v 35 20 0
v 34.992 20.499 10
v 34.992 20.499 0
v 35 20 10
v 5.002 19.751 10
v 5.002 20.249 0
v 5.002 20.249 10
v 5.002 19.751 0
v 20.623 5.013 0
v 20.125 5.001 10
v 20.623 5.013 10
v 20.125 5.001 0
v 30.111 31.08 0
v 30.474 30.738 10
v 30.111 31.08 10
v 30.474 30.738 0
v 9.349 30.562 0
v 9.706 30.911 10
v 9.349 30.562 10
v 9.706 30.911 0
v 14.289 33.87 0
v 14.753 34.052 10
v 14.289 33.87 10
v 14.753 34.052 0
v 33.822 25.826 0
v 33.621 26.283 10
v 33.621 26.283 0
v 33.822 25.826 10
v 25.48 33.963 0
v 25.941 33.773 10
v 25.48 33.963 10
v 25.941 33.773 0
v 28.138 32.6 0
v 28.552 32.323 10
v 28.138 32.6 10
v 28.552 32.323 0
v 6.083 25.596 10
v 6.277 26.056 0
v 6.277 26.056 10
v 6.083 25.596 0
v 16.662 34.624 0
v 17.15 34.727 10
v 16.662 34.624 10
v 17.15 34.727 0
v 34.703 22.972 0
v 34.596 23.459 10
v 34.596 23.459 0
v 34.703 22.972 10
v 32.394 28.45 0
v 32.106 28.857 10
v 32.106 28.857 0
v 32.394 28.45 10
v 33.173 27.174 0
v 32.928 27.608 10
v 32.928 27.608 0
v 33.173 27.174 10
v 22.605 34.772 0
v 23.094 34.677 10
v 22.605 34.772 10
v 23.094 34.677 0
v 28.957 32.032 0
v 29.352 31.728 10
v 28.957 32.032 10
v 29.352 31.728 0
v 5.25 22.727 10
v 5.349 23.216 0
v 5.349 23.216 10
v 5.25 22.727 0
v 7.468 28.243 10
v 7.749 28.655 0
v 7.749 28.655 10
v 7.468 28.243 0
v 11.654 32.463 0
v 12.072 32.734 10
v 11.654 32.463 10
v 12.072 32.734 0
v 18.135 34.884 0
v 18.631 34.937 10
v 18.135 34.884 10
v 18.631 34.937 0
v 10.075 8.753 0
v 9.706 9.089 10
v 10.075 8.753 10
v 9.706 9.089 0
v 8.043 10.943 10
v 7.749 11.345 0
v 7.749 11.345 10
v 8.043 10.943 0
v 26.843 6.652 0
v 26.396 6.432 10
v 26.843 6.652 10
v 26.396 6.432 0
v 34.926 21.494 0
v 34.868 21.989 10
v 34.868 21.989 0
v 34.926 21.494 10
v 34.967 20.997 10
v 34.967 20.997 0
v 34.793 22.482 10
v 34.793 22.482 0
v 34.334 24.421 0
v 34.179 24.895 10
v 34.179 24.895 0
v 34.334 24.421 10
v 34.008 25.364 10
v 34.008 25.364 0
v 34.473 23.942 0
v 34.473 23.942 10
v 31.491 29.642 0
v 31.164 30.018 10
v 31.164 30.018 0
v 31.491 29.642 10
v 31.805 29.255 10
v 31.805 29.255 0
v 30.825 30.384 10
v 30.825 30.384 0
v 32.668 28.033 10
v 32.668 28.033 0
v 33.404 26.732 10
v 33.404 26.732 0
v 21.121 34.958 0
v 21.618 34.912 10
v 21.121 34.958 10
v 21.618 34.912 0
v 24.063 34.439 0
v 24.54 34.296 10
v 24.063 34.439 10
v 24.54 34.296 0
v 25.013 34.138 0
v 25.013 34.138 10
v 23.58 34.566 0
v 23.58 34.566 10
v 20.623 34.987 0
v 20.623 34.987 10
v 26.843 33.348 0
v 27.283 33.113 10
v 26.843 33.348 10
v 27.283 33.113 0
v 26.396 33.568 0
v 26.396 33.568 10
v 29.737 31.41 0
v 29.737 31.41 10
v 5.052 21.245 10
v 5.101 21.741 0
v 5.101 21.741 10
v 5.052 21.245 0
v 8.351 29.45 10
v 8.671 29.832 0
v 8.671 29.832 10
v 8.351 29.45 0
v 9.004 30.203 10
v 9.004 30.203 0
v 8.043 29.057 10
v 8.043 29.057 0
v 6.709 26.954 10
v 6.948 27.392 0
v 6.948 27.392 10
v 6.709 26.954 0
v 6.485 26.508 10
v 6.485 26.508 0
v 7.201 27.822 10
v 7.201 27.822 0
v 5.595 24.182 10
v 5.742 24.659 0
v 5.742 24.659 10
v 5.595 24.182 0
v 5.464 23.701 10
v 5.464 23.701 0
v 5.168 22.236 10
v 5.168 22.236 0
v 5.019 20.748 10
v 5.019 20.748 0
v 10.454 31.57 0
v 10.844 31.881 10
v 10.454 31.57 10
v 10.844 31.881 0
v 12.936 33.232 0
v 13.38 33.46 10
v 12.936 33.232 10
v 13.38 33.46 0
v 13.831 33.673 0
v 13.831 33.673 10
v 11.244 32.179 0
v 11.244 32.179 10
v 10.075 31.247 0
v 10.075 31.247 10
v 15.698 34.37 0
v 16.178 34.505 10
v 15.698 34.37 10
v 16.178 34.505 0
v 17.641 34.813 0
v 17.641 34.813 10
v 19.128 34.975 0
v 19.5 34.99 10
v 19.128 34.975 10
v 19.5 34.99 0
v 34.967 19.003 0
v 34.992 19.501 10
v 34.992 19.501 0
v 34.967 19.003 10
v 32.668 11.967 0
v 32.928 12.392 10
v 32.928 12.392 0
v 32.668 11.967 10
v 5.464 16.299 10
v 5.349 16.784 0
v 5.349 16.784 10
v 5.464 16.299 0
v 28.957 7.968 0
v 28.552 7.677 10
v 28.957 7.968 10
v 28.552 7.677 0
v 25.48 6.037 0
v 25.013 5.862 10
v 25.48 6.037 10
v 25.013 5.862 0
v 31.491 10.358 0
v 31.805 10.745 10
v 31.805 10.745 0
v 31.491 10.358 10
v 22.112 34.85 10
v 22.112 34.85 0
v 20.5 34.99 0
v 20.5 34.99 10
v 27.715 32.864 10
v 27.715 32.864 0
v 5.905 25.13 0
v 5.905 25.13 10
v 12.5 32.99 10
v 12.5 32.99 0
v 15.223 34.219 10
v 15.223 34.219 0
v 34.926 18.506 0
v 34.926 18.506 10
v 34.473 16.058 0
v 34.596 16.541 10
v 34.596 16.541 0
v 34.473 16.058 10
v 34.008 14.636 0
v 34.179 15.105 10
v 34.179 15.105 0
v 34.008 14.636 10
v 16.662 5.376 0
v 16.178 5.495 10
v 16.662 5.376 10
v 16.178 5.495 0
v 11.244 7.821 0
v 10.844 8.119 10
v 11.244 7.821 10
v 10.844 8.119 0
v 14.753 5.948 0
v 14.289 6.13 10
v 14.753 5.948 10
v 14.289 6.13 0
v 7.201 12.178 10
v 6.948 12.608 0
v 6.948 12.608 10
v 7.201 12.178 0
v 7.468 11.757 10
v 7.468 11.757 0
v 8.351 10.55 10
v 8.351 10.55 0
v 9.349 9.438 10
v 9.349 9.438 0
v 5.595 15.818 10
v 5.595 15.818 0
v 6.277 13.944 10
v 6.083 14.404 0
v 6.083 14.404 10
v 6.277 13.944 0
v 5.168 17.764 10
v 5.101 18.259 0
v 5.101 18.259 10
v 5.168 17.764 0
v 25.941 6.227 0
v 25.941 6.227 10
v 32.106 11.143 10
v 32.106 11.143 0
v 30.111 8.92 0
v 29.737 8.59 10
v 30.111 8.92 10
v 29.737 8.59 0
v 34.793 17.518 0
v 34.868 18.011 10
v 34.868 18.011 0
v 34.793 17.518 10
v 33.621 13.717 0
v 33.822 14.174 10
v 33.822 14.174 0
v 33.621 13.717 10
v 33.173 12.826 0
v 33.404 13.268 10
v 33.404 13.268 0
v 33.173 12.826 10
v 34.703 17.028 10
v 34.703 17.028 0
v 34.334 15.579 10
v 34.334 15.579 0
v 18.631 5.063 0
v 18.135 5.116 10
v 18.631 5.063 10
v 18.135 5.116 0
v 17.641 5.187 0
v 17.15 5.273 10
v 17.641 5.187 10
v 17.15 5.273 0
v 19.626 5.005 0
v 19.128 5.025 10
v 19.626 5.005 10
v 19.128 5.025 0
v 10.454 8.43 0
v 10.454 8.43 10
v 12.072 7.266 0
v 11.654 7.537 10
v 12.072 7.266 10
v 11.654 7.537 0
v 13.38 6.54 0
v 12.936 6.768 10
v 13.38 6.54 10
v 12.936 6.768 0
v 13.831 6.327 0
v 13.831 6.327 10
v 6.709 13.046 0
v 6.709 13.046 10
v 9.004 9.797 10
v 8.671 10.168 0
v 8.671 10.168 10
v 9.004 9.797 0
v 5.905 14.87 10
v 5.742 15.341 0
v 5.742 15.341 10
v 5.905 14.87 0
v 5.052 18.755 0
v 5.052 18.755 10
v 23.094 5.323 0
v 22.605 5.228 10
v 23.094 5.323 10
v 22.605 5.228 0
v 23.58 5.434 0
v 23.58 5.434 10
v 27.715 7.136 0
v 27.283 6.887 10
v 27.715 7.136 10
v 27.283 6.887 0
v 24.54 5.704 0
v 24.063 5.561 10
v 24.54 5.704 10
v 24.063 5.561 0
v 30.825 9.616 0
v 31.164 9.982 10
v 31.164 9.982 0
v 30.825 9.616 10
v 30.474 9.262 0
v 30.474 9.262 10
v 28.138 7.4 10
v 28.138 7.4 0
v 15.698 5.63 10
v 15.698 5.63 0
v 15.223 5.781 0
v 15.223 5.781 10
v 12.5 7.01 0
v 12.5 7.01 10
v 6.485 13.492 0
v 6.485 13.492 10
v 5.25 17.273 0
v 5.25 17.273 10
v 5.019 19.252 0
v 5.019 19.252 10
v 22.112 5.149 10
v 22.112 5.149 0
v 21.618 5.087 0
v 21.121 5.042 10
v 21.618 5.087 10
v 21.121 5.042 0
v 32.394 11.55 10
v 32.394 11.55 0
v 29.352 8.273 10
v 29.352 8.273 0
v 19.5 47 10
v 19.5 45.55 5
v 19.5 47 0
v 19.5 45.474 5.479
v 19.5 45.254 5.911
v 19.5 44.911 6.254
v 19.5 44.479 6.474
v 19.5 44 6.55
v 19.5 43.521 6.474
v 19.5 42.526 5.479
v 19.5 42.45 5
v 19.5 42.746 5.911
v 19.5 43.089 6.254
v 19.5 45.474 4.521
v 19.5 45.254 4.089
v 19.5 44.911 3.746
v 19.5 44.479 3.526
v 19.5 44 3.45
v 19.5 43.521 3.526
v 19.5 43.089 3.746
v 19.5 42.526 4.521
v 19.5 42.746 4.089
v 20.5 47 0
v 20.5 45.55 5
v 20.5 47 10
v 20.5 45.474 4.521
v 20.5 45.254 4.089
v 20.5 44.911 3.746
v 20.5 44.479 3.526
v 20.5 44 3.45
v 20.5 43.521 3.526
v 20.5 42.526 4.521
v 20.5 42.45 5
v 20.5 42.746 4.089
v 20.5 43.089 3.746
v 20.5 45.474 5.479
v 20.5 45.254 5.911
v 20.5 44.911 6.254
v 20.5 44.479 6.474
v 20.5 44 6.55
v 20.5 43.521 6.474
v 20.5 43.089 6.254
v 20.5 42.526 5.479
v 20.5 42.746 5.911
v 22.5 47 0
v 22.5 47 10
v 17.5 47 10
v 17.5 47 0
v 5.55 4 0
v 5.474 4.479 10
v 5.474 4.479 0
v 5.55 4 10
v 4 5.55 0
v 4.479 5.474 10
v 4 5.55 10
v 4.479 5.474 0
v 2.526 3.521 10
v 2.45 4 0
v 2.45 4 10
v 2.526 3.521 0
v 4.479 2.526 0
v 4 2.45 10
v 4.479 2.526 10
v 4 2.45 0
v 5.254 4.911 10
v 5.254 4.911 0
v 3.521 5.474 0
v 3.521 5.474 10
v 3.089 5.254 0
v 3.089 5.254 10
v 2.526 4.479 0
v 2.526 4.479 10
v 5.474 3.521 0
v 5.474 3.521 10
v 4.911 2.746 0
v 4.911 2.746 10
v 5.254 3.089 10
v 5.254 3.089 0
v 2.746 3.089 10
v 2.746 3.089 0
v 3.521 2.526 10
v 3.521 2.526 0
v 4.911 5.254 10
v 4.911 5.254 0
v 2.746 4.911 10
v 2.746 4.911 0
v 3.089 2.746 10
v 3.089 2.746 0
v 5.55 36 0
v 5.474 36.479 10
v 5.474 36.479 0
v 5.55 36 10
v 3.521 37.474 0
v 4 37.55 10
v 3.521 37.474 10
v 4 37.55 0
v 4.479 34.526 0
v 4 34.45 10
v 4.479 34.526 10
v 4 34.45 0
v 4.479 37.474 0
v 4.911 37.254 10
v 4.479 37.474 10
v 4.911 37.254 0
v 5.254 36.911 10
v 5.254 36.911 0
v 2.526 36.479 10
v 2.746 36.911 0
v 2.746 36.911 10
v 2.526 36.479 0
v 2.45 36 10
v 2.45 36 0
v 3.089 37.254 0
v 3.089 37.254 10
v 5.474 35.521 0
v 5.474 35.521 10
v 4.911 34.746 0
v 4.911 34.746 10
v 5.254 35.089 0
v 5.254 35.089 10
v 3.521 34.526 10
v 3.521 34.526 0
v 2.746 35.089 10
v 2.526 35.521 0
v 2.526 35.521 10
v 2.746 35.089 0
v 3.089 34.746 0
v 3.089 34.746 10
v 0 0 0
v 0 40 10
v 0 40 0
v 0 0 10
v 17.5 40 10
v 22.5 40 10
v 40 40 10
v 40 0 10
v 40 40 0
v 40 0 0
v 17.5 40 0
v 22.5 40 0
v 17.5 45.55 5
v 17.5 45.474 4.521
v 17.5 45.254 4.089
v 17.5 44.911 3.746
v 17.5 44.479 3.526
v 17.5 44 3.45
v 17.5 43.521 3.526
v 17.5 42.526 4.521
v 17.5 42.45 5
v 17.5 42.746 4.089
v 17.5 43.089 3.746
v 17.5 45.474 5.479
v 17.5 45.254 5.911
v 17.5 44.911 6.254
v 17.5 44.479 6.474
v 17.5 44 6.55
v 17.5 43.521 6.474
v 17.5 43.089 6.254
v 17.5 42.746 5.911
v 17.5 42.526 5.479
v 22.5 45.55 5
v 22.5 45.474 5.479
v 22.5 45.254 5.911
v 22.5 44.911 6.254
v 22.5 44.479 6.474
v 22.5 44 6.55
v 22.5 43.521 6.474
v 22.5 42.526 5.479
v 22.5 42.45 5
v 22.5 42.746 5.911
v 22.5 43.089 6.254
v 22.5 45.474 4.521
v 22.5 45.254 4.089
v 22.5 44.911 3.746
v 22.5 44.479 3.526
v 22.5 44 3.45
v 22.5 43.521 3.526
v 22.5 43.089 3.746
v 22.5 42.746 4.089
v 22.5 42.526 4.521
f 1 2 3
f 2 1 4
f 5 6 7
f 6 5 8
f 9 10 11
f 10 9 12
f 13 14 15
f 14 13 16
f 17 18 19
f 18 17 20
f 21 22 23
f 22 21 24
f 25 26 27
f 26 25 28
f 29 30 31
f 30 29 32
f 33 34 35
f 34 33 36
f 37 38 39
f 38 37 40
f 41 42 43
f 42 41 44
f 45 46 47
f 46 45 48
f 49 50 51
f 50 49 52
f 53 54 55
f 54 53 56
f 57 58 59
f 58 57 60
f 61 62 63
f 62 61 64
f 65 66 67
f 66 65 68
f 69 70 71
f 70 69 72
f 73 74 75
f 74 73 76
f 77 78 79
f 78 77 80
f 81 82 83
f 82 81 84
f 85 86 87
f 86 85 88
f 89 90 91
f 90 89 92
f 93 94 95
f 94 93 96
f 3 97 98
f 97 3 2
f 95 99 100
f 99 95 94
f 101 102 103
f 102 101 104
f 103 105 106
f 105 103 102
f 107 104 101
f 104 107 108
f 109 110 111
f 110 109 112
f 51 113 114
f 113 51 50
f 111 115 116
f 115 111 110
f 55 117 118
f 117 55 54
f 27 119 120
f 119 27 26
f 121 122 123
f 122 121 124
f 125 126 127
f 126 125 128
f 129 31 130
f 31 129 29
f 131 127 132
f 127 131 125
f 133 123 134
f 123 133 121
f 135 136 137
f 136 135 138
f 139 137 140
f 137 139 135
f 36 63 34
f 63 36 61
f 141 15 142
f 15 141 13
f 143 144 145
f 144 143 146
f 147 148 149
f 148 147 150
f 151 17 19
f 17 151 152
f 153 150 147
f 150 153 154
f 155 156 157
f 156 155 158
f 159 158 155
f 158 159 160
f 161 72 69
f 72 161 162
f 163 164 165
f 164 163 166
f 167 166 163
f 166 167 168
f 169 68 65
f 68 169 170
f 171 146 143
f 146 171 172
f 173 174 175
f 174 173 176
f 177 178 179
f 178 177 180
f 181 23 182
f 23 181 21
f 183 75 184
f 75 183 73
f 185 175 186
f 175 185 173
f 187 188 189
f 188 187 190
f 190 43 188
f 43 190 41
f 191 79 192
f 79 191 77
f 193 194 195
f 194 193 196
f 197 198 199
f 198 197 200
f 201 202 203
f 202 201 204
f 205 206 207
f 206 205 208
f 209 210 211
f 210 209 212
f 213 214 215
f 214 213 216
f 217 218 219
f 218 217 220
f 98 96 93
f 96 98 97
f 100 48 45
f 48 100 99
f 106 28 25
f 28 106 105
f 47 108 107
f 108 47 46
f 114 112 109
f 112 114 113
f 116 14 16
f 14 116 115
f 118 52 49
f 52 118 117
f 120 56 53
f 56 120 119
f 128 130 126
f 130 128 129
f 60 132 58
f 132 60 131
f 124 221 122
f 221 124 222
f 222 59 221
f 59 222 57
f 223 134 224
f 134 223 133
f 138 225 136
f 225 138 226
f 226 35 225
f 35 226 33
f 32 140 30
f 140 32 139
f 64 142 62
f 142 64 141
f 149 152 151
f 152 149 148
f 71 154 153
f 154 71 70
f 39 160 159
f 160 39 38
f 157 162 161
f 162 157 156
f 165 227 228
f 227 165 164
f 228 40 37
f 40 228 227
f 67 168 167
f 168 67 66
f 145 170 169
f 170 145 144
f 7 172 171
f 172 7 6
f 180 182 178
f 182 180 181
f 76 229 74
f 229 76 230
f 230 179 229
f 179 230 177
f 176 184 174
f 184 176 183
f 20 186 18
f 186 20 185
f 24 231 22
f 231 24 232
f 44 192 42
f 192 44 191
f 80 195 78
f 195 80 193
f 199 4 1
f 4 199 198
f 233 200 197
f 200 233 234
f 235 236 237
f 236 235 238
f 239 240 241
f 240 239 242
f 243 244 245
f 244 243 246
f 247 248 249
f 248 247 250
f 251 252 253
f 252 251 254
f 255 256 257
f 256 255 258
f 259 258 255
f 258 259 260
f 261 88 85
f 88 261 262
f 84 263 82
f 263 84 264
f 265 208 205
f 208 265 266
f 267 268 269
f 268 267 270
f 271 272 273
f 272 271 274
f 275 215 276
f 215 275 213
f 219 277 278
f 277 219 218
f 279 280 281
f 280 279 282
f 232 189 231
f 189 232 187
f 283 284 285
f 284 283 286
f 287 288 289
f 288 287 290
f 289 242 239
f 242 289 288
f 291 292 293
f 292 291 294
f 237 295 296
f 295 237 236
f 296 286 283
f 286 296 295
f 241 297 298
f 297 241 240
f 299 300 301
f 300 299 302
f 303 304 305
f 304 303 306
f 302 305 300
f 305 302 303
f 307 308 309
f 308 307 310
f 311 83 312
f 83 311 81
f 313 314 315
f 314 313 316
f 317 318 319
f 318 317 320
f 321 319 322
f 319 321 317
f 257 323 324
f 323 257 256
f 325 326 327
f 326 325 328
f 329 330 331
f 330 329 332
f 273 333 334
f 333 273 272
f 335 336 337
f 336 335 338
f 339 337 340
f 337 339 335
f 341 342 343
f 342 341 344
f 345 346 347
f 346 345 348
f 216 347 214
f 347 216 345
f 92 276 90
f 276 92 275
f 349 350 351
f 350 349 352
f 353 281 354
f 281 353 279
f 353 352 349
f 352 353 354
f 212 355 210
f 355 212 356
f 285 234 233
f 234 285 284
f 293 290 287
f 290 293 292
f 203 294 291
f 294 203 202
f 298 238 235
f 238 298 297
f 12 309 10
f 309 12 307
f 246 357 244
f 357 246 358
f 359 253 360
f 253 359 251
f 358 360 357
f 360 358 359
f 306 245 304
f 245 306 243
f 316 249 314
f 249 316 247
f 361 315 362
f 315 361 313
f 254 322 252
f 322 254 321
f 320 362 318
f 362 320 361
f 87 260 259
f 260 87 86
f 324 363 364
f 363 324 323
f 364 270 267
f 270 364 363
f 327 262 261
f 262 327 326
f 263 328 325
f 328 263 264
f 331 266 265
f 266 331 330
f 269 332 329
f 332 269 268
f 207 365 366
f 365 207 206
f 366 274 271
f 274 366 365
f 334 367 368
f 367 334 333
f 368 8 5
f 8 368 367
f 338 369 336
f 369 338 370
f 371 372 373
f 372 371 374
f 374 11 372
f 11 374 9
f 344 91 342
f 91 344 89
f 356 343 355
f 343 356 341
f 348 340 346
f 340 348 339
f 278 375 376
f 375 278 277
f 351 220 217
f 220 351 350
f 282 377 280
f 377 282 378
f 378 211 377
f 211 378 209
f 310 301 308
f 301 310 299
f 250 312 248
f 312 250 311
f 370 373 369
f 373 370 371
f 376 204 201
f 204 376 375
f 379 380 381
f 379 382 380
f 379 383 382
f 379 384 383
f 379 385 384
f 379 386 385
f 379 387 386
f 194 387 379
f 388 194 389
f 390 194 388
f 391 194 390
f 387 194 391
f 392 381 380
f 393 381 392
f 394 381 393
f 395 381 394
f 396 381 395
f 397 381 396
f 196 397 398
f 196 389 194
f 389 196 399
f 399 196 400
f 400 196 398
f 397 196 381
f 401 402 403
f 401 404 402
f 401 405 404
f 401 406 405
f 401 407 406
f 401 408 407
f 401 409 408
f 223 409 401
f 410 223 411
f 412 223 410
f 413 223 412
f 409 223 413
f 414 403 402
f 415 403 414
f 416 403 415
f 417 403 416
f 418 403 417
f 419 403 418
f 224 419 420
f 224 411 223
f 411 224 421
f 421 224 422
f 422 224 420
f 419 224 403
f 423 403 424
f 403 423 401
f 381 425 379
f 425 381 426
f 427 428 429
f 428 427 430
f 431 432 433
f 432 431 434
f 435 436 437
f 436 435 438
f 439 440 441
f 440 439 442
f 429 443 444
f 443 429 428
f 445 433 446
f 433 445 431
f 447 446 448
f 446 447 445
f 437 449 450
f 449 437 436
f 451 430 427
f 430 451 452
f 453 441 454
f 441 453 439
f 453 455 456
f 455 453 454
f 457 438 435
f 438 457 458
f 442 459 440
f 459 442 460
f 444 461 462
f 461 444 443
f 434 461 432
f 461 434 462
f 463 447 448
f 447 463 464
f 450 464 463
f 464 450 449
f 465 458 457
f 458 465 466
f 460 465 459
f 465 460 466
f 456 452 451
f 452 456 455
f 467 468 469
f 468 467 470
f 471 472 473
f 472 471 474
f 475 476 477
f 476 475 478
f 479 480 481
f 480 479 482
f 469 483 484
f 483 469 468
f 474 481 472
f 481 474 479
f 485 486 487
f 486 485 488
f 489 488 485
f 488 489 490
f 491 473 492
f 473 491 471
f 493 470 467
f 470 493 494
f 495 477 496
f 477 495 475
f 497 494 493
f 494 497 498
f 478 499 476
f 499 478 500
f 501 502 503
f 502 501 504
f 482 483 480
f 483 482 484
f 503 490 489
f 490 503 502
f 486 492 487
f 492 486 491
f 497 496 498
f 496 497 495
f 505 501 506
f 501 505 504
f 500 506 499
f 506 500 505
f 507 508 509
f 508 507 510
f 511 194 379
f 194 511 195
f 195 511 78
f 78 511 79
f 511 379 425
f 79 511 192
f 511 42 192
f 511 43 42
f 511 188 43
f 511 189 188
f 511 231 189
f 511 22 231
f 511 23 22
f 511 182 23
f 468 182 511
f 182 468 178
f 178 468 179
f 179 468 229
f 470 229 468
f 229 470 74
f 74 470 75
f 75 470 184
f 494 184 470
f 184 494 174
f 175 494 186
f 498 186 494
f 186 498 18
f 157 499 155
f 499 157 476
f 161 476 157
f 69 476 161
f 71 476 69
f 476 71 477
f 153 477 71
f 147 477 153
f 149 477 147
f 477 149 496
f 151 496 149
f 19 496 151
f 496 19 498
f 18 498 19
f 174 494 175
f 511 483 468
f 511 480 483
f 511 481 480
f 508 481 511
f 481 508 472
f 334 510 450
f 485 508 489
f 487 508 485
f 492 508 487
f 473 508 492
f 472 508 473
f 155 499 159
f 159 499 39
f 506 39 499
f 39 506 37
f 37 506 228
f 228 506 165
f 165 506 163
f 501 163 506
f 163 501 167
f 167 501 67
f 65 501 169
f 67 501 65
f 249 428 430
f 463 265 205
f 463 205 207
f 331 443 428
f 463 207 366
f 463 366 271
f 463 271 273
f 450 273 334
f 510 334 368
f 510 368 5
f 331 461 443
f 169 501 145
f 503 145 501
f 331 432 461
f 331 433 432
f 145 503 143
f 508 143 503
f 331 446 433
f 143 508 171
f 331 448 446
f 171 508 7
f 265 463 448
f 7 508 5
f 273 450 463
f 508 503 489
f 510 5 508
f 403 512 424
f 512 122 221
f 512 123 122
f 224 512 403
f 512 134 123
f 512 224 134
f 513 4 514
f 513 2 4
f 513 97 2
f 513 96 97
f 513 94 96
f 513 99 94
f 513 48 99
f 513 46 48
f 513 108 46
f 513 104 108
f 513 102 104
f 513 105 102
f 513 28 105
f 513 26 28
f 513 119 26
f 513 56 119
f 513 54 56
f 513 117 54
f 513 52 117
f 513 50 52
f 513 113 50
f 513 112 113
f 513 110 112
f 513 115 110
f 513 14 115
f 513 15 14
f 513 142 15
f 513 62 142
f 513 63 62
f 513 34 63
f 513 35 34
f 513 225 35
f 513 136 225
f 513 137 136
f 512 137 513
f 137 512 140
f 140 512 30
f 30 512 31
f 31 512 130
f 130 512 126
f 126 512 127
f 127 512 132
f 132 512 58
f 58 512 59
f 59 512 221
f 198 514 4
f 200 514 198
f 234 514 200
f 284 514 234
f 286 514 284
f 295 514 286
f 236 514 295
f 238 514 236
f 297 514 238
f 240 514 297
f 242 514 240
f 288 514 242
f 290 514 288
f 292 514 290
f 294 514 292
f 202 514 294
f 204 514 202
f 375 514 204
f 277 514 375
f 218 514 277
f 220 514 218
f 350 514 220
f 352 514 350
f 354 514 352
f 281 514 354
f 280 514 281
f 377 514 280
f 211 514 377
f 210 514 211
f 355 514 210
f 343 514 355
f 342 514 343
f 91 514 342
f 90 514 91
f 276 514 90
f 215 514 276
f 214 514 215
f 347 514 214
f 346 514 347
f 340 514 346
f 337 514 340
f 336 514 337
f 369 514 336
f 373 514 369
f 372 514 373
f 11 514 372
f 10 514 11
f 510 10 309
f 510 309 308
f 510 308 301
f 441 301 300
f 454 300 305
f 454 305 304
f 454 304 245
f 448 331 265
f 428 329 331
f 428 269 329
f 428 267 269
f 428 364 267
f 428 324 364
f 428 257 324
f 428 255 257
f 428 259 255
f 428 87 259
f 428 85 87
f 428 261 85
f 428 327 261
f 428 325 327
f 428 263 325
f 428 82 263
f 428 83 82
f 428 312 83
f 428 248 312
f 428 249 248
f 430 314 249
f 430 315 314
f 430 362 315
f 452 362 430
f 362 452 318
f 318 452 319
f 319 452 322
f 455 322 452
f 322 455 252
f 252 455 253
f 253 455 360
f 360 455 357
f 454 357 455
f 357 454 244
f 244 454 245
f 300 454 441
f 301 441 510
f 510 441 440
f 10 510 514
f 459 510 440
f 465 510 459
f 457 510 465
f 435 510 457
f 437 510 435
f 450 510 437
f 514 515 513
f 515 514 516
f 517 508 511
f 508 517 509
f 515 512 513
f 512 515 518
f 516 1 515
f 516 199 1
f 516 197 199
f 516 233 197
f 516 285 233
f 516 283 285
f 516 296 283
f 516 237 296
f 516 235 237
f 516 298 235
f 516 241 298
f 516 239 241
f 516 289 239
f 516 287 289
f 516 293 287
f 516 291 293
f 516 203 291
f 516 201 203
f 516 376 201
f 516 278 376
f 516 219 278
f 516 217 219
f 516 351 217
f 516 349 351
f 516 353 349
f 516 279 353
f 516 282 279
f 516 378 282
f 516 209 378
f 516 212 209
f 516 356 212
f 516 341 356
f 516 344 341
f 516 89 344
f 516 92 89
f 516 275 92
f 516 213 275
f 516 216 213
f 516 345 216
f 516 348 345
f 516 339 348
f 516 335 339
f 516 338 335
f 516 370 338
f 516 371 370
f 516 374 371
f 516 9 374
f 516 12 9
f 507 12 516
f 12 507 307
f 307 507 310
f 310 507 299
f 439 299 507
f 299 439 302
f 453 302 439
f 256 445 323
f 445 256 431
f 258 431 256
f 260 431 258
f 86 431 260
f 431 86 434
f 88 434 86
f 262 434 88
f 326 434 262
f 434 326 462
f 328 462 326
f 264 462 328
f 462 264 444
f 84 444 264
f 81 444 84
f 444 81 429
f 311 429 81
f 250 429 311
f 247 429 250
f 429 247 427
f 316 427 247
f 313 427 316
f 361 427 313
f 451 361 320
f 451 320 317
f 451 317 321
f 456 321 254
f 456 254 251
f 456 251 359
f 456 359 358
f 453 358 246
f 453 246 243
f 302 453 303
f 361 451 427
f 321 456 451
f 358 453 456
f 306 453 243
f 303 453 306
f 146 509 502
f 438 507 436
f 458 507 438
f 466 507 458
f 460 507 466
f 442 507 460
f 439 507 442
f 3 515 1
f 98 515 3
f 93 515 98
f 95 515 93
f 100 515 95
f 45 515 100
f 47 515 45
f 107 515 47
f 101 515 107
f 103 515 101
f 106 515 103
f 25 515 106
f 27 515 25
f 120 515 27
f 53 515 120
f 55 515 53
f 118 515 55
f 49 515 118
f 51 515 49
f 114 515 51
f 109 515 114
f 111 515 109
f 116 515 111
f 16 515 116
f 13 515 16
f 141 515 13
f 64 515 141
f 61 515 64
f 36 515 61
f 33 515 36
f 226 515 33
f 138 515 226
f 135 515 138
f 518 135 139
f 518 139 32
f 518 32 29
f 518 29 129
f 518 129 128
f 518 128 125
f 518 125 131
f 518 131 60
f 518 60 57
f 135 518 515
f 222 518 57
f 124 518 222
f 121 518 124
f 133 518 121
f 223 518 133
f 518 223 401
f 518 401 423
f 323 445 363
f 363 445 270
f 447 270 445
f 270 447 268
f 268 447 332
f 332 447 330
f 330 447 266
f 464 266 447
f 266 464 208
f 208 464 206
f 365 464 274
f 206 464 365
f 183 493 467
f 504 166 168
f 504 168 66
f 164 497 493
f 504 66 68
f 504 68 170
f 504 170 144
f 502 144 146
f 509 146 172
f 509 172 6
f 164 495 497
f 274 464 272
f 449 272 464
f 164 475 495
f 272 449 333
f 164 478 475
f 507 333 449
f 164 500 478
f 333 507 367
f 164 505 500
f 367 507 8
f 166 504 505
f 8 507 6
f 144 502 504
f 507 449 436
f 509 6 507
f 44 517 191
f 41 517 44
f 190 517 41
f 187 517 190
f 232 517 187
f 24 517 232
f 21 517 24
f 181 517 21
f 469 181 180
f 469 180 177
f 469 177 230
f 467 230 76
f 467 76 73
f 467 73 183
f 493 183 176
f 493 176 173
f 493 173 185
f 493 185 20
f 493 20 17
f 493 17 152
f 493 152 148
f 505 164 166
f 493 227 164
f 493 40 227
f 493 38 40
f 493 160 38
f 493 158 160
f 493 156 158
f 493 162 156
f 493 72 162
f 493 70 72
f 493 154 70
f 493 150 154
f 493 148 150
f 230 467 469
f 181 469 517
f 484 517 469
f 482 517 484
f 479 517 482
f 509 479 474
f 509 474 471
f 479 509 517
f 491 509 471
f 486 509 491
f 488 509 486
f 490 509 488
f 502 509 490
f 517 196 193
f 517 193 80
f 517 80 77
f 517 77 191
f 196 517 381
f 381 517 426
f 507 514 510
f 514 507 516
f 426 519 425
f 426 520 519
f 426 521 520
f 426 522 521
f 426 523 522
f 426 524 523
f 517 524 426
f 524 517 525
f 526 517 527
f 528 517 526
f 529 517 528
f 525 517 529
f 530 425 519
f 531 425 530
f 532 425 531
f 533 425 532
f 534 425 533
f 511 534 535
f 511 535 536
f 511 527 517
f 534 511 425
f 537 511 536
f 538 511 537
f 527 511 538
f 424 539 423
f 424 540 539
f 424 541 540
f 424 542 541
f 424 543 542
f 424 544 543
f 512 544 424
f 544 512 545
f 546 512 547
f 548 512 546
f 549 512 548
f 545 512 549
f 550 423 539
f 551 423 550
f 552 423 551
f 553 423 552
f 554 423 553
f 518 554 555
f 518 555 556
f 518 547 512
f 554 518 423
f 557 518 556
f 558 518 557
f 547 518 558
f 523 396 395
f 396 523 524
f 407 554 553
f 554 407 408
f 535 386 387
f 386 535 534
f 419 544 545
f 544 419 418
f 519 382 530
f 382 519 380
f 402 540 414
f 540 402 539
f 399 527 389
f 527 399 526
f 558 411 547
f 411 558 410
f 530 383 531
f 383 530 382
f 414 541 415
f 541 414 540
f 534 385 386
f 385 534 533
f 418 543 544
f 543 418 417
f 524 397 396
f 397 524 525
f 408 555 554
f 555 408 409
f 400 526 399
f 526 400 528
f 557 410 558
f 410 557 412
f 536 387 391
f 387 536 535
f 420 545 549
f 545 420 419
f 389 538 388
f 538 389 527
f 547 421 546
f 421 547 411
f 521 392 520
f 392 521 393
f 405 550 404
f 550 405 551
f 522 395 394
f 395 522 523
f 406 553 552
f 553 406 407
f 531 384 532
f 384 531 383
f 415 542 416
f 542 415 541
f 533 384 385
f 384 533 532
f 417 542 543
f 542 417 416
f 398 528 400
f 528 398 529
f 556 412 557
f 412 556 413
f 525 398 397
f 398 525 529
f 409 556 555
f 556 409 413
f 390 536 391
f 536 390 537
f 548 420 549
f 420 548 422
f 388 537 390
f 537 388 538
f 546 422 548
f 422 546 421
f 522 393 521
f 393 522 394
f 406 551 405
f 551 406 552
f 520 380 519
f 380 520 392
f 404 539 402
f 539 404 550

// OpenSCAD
$fa=0.5;
$fs=0.5;

clampsize=40;
clampthick=10;
dekatron=30;
M3=3.1;
M4=4.1;

module cutout(){
    union(){
        cylinder(r=dekatron/2,h=clampthick+2);
        translate([-0.5,dekatron/2-1,0])
            cube([1,13,clampthick+2]);
    }
}

module tab(){
    difference(){
        cube([5,7,10]);
        translate([-1,4,5]){
            rotate([0,90,0])
                cylinder(r=M3/2, h=7);
        }
    }
}

module mountholes(){
    translate([4,4,-1])
        cylinder(r=M3/2, h=clampthick+2);
    translate([4,36,-1])
        cylinder(r=M3/2, h=clampthick+2);
}

module maincube(){
    difference(){
        cube([clampsize,clampsize,clampthick]);
        mountholes();
    }
}

module mainshape(){
    maincube();
    translate([clampsize/2-2.5,clampsize,0])
       tab();
}

union(){
    difference(){
        mainshape();
        translate([clampsize/2,clampsize/2,-1])
            cutout();
    }
}
